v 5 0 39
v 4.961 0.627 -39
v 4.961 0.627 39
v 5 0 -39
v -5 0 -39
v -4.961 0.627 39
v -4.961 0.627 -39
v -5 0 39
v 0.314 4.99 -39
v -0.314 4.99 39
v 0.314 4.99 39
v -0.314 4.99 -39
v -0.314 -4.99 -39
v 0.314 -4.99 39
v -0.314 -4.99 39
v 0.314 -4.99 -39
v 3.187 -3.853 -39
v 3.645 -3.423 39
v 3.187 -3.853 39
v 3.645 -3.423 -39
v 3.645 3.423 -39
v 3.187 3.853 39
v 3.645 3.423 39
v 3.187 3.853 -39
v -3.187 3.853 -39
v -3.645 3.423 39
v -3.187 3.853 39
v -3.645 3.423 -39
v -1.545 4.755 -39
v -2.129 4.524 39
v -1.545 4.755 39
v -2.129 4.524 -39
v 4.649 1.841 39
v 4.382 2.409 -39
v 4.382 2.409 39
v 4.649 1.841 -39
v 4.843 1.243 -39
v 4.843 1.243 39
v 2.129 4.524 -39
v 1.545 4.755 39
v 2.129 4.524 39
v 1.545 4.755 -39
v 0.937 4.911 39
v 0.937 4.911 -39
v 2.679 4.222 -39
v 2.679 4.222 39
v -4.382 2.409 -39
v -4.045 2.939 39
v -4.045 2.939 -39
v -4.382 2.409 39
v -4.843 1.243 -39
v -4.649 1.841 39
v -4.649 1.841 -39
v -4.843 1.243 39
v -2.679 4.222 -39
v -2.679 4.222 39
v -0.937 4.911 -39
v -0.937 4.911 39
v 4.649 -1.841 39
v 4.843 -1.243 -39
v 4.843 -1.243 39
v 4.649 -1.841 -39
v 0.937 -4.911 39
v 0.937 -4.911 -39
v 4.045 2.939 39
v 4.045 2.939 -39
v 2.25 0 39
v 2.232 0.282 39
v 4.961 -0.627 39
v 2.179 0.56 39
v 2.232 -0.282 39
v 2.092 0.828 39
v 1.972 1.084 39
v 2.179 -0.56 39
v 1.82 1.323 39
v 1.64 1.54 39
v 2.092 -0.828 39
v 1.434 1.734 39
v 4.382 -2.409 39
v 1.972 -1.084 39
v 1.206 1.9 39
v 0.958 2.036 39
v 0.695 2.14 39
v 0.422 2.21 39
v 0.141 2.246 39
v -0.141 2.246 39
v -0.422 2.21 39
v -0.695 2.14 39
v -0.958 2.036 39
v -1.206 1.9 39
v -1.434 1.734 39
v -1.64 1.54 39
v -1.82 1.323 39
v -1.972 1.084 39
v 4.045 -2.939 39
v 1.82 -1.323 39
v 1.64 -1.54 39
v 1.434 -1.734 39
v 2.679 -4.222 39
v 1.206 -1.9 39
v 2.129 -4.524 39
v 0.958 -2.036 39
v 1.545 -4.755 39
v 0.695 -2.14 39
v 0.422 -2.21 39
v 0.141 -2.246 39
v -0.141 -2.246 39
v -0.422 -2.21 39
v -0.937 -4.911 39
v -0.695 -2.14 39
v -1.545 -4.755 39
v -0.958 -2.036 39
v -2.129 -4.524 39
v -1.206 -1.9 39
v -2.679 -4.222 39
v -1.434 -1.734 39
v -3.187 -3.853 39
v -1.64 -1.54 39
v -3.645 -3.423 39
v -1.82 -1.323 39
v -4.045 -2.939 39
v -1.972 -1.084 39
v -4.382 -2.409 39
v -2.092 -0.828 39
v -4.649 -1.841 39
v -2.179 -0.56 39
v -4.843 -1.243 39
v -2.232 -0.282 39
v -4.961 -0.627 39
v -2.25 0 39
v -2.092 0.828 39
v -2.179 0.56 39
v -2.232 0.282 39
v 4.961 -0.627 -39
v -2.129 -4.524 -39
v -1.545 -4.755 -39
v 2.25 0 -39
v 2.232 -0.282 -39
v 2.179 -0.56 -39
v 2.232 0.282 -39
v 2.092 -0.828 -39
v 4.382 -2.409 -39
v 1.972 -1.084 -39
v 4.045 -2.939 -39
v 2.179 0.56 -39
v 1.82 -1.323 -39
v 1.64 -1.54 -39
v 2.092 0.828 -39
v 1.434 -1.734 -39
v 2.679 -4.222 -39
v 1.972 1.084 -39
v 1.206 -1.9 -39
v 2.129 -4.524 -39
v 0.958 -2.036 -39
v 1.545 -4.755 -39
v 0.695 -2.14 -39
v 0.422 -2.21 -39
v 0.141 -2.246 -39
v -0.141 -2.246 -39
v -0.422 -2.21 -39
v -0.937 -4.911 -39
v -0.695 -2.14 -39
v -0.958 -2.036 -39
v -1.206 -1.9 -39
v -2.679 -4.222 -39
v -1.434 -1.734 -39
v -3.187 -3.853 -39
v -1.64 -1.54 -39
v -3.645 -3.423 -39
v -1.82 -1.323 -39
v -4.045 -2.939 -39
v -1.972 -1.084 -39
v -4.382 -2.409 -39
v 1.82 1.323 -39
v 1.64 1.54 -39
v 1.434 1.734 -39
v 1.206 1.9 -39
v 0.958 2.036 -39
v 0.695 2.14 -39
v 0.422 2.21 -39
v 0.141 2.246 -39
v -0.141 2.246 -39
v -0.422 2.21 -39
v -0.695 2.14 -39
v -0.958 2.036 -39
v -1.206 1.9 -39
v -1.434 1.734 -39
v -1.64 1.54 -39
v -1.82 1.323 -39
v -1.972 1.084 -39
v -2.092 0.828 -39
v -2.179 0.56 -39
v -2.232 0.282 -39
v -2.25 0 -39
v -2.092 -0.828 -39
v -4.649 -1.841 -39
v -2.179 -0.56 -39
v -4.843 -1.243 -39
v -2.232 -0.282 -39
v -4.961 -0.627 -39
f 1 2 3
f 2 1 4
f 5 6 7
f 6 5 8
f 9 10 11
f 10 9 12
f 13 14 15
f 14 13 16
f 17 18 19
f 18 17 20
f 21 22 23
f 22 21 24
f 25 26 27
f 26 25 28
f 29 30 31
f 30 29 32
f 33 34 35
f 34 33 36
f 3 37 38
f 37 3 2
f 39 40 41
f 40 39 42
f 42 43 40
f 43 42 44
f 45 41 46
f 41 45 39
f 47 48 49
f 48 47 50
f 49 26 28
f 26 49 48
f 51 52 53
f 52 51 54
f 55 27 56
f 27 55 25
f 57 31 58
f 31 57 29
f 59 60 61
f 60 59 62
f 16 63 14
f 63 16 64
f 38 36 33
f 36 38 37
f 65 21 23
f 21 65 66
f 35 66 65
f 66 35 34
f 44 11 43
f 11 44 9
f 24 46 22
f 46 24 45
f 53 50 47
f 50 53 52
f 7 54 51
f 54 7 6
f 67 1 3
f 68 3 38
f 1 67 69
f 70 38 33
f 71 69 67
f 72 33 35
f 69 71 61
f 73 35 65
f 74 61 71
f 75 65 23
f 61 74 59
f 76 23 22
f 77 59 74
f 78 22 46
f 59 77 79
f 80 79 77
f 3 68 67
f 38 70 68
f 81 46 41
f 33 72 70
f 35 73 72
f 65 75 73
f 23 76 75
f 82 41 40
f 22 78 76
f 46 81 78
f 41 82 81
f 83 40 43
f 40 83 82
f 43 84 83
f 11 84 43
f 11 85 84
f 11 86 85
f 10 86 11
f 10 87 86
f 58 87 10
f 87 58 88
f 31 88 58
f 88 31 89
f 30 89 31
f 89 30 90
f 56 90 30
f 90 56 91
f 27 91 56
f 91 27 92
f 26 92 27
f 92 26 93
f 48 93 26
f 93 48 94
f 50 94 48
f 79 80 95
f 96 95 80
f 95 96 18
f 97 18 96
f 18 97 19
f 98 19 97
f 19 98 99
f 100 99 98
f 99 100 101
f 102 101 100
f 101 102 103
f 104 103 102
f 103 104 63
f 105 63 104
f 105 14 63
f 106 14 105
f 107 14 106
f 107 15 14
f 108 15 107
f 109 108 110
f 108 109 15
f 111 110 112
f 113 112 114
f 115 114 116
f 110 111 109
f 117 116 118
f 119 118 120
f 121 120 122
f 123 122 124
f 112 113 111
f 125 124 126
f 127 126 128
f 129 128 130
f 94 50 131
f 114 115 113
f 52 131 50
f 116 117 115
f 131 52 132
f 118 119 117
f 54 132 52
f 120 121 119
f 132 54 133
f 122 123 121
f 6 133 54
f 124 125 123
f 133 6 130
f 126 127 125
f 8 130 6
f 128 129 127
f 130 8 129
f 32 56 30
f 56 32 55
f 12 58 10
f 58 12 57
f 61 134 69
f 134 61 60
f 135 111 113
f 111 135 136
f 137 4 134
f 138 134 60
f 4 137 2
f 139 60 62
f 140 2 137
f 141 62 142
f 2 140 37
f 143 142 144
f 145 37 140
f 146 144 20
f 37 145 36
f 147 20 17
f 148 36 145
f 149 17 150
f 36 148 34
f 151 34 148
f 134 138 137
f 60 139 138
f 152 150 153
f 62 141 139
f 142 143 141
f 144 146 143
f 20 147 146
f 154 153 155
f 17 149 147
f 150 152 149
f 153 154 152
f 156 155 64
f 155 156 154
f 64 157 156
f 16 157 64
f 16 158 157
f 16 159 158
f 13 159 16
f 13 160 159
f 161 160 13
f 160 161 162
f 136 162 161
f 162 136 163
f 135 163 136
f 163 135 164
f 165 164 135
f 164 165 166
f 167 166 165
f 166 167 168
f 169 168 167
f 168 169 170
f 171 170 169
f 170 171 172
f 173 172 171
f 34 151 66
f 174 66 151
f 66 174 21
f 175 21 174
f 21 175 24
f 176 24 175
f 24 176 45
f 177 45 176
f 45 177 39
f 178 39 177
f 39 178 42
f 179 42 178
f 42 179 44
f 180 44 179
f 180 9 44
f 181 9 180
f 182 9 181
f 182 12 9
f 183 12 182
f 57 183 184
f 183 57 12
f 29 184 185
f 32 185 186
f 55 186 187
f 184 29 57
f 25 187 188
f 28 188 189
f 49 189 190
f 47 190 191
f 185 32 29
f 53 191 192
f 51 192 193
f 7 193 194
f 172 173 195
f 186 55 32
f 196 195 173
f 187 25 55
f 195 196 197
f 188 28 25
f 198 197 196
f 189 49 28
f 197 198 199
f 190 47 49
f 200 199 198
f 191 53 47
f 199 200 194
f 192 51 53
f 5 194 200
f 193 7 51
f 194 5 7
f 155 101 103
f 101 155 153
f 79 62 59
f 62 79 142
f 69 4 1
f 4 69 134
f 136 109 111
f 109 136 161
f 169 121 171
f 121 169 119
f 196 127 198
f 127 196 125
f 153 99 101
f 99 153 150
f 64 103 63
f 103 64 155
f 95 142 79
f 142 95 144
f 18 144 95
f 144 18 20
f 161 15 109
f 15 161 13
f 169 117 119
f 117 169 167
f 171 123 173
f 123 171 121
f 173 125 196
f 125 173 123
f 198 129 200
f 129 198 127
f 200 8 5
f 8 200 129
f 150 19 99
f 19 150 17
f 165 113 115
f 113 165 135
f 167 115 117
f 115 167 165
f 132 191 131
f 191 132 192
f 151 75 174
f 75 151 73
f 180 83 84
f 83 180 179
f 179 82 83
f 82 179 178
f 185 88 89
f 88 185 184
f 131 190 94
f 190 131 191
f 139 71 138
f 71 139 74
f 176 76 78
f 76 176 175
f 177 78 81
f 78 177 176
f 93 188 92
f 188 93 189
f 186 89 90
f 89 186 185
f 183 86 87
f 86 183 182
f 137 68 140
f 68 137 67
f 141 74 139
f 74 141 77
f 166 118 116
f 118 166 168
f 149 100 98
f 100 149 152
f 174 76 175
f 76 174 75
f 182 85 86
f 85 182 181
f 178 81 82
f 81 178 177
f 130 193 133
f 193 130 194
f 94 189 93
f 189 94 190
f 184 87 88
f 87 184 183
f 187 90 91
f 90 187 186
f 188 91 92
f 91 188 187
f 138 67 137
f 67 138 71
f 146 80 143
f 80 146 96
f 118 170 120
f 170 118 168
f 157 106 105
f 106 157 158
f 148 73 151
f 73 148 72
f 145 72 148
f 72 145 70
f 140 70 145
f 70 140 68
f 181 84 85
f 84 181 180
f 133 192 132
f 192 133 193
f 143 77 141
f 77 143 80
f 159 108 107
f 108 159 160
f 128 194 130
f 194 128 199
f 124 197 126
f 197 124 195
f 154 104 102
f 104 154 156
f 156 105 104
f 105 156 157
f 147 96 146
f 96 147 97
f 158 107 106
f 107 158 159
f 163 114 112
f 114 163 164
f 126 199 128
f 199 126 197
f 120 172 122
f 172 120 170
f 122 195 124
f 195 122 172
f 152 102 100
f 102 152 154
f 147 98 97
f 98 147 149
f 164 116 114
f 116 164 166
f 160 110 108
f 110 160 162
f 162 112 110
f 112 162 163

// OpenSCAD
$fn = 50;


difference() {
	union() {
		translate(v = [0, 0, -39.0000000000]) {
			cylinder(h = 78, r = 5.0000000000);
		}
	}
	union() {
		translate(v = [0, 0, -100.0000000000]) {
			cylinder(h = 200, r = 2.2500000000);
		}
	}
}
